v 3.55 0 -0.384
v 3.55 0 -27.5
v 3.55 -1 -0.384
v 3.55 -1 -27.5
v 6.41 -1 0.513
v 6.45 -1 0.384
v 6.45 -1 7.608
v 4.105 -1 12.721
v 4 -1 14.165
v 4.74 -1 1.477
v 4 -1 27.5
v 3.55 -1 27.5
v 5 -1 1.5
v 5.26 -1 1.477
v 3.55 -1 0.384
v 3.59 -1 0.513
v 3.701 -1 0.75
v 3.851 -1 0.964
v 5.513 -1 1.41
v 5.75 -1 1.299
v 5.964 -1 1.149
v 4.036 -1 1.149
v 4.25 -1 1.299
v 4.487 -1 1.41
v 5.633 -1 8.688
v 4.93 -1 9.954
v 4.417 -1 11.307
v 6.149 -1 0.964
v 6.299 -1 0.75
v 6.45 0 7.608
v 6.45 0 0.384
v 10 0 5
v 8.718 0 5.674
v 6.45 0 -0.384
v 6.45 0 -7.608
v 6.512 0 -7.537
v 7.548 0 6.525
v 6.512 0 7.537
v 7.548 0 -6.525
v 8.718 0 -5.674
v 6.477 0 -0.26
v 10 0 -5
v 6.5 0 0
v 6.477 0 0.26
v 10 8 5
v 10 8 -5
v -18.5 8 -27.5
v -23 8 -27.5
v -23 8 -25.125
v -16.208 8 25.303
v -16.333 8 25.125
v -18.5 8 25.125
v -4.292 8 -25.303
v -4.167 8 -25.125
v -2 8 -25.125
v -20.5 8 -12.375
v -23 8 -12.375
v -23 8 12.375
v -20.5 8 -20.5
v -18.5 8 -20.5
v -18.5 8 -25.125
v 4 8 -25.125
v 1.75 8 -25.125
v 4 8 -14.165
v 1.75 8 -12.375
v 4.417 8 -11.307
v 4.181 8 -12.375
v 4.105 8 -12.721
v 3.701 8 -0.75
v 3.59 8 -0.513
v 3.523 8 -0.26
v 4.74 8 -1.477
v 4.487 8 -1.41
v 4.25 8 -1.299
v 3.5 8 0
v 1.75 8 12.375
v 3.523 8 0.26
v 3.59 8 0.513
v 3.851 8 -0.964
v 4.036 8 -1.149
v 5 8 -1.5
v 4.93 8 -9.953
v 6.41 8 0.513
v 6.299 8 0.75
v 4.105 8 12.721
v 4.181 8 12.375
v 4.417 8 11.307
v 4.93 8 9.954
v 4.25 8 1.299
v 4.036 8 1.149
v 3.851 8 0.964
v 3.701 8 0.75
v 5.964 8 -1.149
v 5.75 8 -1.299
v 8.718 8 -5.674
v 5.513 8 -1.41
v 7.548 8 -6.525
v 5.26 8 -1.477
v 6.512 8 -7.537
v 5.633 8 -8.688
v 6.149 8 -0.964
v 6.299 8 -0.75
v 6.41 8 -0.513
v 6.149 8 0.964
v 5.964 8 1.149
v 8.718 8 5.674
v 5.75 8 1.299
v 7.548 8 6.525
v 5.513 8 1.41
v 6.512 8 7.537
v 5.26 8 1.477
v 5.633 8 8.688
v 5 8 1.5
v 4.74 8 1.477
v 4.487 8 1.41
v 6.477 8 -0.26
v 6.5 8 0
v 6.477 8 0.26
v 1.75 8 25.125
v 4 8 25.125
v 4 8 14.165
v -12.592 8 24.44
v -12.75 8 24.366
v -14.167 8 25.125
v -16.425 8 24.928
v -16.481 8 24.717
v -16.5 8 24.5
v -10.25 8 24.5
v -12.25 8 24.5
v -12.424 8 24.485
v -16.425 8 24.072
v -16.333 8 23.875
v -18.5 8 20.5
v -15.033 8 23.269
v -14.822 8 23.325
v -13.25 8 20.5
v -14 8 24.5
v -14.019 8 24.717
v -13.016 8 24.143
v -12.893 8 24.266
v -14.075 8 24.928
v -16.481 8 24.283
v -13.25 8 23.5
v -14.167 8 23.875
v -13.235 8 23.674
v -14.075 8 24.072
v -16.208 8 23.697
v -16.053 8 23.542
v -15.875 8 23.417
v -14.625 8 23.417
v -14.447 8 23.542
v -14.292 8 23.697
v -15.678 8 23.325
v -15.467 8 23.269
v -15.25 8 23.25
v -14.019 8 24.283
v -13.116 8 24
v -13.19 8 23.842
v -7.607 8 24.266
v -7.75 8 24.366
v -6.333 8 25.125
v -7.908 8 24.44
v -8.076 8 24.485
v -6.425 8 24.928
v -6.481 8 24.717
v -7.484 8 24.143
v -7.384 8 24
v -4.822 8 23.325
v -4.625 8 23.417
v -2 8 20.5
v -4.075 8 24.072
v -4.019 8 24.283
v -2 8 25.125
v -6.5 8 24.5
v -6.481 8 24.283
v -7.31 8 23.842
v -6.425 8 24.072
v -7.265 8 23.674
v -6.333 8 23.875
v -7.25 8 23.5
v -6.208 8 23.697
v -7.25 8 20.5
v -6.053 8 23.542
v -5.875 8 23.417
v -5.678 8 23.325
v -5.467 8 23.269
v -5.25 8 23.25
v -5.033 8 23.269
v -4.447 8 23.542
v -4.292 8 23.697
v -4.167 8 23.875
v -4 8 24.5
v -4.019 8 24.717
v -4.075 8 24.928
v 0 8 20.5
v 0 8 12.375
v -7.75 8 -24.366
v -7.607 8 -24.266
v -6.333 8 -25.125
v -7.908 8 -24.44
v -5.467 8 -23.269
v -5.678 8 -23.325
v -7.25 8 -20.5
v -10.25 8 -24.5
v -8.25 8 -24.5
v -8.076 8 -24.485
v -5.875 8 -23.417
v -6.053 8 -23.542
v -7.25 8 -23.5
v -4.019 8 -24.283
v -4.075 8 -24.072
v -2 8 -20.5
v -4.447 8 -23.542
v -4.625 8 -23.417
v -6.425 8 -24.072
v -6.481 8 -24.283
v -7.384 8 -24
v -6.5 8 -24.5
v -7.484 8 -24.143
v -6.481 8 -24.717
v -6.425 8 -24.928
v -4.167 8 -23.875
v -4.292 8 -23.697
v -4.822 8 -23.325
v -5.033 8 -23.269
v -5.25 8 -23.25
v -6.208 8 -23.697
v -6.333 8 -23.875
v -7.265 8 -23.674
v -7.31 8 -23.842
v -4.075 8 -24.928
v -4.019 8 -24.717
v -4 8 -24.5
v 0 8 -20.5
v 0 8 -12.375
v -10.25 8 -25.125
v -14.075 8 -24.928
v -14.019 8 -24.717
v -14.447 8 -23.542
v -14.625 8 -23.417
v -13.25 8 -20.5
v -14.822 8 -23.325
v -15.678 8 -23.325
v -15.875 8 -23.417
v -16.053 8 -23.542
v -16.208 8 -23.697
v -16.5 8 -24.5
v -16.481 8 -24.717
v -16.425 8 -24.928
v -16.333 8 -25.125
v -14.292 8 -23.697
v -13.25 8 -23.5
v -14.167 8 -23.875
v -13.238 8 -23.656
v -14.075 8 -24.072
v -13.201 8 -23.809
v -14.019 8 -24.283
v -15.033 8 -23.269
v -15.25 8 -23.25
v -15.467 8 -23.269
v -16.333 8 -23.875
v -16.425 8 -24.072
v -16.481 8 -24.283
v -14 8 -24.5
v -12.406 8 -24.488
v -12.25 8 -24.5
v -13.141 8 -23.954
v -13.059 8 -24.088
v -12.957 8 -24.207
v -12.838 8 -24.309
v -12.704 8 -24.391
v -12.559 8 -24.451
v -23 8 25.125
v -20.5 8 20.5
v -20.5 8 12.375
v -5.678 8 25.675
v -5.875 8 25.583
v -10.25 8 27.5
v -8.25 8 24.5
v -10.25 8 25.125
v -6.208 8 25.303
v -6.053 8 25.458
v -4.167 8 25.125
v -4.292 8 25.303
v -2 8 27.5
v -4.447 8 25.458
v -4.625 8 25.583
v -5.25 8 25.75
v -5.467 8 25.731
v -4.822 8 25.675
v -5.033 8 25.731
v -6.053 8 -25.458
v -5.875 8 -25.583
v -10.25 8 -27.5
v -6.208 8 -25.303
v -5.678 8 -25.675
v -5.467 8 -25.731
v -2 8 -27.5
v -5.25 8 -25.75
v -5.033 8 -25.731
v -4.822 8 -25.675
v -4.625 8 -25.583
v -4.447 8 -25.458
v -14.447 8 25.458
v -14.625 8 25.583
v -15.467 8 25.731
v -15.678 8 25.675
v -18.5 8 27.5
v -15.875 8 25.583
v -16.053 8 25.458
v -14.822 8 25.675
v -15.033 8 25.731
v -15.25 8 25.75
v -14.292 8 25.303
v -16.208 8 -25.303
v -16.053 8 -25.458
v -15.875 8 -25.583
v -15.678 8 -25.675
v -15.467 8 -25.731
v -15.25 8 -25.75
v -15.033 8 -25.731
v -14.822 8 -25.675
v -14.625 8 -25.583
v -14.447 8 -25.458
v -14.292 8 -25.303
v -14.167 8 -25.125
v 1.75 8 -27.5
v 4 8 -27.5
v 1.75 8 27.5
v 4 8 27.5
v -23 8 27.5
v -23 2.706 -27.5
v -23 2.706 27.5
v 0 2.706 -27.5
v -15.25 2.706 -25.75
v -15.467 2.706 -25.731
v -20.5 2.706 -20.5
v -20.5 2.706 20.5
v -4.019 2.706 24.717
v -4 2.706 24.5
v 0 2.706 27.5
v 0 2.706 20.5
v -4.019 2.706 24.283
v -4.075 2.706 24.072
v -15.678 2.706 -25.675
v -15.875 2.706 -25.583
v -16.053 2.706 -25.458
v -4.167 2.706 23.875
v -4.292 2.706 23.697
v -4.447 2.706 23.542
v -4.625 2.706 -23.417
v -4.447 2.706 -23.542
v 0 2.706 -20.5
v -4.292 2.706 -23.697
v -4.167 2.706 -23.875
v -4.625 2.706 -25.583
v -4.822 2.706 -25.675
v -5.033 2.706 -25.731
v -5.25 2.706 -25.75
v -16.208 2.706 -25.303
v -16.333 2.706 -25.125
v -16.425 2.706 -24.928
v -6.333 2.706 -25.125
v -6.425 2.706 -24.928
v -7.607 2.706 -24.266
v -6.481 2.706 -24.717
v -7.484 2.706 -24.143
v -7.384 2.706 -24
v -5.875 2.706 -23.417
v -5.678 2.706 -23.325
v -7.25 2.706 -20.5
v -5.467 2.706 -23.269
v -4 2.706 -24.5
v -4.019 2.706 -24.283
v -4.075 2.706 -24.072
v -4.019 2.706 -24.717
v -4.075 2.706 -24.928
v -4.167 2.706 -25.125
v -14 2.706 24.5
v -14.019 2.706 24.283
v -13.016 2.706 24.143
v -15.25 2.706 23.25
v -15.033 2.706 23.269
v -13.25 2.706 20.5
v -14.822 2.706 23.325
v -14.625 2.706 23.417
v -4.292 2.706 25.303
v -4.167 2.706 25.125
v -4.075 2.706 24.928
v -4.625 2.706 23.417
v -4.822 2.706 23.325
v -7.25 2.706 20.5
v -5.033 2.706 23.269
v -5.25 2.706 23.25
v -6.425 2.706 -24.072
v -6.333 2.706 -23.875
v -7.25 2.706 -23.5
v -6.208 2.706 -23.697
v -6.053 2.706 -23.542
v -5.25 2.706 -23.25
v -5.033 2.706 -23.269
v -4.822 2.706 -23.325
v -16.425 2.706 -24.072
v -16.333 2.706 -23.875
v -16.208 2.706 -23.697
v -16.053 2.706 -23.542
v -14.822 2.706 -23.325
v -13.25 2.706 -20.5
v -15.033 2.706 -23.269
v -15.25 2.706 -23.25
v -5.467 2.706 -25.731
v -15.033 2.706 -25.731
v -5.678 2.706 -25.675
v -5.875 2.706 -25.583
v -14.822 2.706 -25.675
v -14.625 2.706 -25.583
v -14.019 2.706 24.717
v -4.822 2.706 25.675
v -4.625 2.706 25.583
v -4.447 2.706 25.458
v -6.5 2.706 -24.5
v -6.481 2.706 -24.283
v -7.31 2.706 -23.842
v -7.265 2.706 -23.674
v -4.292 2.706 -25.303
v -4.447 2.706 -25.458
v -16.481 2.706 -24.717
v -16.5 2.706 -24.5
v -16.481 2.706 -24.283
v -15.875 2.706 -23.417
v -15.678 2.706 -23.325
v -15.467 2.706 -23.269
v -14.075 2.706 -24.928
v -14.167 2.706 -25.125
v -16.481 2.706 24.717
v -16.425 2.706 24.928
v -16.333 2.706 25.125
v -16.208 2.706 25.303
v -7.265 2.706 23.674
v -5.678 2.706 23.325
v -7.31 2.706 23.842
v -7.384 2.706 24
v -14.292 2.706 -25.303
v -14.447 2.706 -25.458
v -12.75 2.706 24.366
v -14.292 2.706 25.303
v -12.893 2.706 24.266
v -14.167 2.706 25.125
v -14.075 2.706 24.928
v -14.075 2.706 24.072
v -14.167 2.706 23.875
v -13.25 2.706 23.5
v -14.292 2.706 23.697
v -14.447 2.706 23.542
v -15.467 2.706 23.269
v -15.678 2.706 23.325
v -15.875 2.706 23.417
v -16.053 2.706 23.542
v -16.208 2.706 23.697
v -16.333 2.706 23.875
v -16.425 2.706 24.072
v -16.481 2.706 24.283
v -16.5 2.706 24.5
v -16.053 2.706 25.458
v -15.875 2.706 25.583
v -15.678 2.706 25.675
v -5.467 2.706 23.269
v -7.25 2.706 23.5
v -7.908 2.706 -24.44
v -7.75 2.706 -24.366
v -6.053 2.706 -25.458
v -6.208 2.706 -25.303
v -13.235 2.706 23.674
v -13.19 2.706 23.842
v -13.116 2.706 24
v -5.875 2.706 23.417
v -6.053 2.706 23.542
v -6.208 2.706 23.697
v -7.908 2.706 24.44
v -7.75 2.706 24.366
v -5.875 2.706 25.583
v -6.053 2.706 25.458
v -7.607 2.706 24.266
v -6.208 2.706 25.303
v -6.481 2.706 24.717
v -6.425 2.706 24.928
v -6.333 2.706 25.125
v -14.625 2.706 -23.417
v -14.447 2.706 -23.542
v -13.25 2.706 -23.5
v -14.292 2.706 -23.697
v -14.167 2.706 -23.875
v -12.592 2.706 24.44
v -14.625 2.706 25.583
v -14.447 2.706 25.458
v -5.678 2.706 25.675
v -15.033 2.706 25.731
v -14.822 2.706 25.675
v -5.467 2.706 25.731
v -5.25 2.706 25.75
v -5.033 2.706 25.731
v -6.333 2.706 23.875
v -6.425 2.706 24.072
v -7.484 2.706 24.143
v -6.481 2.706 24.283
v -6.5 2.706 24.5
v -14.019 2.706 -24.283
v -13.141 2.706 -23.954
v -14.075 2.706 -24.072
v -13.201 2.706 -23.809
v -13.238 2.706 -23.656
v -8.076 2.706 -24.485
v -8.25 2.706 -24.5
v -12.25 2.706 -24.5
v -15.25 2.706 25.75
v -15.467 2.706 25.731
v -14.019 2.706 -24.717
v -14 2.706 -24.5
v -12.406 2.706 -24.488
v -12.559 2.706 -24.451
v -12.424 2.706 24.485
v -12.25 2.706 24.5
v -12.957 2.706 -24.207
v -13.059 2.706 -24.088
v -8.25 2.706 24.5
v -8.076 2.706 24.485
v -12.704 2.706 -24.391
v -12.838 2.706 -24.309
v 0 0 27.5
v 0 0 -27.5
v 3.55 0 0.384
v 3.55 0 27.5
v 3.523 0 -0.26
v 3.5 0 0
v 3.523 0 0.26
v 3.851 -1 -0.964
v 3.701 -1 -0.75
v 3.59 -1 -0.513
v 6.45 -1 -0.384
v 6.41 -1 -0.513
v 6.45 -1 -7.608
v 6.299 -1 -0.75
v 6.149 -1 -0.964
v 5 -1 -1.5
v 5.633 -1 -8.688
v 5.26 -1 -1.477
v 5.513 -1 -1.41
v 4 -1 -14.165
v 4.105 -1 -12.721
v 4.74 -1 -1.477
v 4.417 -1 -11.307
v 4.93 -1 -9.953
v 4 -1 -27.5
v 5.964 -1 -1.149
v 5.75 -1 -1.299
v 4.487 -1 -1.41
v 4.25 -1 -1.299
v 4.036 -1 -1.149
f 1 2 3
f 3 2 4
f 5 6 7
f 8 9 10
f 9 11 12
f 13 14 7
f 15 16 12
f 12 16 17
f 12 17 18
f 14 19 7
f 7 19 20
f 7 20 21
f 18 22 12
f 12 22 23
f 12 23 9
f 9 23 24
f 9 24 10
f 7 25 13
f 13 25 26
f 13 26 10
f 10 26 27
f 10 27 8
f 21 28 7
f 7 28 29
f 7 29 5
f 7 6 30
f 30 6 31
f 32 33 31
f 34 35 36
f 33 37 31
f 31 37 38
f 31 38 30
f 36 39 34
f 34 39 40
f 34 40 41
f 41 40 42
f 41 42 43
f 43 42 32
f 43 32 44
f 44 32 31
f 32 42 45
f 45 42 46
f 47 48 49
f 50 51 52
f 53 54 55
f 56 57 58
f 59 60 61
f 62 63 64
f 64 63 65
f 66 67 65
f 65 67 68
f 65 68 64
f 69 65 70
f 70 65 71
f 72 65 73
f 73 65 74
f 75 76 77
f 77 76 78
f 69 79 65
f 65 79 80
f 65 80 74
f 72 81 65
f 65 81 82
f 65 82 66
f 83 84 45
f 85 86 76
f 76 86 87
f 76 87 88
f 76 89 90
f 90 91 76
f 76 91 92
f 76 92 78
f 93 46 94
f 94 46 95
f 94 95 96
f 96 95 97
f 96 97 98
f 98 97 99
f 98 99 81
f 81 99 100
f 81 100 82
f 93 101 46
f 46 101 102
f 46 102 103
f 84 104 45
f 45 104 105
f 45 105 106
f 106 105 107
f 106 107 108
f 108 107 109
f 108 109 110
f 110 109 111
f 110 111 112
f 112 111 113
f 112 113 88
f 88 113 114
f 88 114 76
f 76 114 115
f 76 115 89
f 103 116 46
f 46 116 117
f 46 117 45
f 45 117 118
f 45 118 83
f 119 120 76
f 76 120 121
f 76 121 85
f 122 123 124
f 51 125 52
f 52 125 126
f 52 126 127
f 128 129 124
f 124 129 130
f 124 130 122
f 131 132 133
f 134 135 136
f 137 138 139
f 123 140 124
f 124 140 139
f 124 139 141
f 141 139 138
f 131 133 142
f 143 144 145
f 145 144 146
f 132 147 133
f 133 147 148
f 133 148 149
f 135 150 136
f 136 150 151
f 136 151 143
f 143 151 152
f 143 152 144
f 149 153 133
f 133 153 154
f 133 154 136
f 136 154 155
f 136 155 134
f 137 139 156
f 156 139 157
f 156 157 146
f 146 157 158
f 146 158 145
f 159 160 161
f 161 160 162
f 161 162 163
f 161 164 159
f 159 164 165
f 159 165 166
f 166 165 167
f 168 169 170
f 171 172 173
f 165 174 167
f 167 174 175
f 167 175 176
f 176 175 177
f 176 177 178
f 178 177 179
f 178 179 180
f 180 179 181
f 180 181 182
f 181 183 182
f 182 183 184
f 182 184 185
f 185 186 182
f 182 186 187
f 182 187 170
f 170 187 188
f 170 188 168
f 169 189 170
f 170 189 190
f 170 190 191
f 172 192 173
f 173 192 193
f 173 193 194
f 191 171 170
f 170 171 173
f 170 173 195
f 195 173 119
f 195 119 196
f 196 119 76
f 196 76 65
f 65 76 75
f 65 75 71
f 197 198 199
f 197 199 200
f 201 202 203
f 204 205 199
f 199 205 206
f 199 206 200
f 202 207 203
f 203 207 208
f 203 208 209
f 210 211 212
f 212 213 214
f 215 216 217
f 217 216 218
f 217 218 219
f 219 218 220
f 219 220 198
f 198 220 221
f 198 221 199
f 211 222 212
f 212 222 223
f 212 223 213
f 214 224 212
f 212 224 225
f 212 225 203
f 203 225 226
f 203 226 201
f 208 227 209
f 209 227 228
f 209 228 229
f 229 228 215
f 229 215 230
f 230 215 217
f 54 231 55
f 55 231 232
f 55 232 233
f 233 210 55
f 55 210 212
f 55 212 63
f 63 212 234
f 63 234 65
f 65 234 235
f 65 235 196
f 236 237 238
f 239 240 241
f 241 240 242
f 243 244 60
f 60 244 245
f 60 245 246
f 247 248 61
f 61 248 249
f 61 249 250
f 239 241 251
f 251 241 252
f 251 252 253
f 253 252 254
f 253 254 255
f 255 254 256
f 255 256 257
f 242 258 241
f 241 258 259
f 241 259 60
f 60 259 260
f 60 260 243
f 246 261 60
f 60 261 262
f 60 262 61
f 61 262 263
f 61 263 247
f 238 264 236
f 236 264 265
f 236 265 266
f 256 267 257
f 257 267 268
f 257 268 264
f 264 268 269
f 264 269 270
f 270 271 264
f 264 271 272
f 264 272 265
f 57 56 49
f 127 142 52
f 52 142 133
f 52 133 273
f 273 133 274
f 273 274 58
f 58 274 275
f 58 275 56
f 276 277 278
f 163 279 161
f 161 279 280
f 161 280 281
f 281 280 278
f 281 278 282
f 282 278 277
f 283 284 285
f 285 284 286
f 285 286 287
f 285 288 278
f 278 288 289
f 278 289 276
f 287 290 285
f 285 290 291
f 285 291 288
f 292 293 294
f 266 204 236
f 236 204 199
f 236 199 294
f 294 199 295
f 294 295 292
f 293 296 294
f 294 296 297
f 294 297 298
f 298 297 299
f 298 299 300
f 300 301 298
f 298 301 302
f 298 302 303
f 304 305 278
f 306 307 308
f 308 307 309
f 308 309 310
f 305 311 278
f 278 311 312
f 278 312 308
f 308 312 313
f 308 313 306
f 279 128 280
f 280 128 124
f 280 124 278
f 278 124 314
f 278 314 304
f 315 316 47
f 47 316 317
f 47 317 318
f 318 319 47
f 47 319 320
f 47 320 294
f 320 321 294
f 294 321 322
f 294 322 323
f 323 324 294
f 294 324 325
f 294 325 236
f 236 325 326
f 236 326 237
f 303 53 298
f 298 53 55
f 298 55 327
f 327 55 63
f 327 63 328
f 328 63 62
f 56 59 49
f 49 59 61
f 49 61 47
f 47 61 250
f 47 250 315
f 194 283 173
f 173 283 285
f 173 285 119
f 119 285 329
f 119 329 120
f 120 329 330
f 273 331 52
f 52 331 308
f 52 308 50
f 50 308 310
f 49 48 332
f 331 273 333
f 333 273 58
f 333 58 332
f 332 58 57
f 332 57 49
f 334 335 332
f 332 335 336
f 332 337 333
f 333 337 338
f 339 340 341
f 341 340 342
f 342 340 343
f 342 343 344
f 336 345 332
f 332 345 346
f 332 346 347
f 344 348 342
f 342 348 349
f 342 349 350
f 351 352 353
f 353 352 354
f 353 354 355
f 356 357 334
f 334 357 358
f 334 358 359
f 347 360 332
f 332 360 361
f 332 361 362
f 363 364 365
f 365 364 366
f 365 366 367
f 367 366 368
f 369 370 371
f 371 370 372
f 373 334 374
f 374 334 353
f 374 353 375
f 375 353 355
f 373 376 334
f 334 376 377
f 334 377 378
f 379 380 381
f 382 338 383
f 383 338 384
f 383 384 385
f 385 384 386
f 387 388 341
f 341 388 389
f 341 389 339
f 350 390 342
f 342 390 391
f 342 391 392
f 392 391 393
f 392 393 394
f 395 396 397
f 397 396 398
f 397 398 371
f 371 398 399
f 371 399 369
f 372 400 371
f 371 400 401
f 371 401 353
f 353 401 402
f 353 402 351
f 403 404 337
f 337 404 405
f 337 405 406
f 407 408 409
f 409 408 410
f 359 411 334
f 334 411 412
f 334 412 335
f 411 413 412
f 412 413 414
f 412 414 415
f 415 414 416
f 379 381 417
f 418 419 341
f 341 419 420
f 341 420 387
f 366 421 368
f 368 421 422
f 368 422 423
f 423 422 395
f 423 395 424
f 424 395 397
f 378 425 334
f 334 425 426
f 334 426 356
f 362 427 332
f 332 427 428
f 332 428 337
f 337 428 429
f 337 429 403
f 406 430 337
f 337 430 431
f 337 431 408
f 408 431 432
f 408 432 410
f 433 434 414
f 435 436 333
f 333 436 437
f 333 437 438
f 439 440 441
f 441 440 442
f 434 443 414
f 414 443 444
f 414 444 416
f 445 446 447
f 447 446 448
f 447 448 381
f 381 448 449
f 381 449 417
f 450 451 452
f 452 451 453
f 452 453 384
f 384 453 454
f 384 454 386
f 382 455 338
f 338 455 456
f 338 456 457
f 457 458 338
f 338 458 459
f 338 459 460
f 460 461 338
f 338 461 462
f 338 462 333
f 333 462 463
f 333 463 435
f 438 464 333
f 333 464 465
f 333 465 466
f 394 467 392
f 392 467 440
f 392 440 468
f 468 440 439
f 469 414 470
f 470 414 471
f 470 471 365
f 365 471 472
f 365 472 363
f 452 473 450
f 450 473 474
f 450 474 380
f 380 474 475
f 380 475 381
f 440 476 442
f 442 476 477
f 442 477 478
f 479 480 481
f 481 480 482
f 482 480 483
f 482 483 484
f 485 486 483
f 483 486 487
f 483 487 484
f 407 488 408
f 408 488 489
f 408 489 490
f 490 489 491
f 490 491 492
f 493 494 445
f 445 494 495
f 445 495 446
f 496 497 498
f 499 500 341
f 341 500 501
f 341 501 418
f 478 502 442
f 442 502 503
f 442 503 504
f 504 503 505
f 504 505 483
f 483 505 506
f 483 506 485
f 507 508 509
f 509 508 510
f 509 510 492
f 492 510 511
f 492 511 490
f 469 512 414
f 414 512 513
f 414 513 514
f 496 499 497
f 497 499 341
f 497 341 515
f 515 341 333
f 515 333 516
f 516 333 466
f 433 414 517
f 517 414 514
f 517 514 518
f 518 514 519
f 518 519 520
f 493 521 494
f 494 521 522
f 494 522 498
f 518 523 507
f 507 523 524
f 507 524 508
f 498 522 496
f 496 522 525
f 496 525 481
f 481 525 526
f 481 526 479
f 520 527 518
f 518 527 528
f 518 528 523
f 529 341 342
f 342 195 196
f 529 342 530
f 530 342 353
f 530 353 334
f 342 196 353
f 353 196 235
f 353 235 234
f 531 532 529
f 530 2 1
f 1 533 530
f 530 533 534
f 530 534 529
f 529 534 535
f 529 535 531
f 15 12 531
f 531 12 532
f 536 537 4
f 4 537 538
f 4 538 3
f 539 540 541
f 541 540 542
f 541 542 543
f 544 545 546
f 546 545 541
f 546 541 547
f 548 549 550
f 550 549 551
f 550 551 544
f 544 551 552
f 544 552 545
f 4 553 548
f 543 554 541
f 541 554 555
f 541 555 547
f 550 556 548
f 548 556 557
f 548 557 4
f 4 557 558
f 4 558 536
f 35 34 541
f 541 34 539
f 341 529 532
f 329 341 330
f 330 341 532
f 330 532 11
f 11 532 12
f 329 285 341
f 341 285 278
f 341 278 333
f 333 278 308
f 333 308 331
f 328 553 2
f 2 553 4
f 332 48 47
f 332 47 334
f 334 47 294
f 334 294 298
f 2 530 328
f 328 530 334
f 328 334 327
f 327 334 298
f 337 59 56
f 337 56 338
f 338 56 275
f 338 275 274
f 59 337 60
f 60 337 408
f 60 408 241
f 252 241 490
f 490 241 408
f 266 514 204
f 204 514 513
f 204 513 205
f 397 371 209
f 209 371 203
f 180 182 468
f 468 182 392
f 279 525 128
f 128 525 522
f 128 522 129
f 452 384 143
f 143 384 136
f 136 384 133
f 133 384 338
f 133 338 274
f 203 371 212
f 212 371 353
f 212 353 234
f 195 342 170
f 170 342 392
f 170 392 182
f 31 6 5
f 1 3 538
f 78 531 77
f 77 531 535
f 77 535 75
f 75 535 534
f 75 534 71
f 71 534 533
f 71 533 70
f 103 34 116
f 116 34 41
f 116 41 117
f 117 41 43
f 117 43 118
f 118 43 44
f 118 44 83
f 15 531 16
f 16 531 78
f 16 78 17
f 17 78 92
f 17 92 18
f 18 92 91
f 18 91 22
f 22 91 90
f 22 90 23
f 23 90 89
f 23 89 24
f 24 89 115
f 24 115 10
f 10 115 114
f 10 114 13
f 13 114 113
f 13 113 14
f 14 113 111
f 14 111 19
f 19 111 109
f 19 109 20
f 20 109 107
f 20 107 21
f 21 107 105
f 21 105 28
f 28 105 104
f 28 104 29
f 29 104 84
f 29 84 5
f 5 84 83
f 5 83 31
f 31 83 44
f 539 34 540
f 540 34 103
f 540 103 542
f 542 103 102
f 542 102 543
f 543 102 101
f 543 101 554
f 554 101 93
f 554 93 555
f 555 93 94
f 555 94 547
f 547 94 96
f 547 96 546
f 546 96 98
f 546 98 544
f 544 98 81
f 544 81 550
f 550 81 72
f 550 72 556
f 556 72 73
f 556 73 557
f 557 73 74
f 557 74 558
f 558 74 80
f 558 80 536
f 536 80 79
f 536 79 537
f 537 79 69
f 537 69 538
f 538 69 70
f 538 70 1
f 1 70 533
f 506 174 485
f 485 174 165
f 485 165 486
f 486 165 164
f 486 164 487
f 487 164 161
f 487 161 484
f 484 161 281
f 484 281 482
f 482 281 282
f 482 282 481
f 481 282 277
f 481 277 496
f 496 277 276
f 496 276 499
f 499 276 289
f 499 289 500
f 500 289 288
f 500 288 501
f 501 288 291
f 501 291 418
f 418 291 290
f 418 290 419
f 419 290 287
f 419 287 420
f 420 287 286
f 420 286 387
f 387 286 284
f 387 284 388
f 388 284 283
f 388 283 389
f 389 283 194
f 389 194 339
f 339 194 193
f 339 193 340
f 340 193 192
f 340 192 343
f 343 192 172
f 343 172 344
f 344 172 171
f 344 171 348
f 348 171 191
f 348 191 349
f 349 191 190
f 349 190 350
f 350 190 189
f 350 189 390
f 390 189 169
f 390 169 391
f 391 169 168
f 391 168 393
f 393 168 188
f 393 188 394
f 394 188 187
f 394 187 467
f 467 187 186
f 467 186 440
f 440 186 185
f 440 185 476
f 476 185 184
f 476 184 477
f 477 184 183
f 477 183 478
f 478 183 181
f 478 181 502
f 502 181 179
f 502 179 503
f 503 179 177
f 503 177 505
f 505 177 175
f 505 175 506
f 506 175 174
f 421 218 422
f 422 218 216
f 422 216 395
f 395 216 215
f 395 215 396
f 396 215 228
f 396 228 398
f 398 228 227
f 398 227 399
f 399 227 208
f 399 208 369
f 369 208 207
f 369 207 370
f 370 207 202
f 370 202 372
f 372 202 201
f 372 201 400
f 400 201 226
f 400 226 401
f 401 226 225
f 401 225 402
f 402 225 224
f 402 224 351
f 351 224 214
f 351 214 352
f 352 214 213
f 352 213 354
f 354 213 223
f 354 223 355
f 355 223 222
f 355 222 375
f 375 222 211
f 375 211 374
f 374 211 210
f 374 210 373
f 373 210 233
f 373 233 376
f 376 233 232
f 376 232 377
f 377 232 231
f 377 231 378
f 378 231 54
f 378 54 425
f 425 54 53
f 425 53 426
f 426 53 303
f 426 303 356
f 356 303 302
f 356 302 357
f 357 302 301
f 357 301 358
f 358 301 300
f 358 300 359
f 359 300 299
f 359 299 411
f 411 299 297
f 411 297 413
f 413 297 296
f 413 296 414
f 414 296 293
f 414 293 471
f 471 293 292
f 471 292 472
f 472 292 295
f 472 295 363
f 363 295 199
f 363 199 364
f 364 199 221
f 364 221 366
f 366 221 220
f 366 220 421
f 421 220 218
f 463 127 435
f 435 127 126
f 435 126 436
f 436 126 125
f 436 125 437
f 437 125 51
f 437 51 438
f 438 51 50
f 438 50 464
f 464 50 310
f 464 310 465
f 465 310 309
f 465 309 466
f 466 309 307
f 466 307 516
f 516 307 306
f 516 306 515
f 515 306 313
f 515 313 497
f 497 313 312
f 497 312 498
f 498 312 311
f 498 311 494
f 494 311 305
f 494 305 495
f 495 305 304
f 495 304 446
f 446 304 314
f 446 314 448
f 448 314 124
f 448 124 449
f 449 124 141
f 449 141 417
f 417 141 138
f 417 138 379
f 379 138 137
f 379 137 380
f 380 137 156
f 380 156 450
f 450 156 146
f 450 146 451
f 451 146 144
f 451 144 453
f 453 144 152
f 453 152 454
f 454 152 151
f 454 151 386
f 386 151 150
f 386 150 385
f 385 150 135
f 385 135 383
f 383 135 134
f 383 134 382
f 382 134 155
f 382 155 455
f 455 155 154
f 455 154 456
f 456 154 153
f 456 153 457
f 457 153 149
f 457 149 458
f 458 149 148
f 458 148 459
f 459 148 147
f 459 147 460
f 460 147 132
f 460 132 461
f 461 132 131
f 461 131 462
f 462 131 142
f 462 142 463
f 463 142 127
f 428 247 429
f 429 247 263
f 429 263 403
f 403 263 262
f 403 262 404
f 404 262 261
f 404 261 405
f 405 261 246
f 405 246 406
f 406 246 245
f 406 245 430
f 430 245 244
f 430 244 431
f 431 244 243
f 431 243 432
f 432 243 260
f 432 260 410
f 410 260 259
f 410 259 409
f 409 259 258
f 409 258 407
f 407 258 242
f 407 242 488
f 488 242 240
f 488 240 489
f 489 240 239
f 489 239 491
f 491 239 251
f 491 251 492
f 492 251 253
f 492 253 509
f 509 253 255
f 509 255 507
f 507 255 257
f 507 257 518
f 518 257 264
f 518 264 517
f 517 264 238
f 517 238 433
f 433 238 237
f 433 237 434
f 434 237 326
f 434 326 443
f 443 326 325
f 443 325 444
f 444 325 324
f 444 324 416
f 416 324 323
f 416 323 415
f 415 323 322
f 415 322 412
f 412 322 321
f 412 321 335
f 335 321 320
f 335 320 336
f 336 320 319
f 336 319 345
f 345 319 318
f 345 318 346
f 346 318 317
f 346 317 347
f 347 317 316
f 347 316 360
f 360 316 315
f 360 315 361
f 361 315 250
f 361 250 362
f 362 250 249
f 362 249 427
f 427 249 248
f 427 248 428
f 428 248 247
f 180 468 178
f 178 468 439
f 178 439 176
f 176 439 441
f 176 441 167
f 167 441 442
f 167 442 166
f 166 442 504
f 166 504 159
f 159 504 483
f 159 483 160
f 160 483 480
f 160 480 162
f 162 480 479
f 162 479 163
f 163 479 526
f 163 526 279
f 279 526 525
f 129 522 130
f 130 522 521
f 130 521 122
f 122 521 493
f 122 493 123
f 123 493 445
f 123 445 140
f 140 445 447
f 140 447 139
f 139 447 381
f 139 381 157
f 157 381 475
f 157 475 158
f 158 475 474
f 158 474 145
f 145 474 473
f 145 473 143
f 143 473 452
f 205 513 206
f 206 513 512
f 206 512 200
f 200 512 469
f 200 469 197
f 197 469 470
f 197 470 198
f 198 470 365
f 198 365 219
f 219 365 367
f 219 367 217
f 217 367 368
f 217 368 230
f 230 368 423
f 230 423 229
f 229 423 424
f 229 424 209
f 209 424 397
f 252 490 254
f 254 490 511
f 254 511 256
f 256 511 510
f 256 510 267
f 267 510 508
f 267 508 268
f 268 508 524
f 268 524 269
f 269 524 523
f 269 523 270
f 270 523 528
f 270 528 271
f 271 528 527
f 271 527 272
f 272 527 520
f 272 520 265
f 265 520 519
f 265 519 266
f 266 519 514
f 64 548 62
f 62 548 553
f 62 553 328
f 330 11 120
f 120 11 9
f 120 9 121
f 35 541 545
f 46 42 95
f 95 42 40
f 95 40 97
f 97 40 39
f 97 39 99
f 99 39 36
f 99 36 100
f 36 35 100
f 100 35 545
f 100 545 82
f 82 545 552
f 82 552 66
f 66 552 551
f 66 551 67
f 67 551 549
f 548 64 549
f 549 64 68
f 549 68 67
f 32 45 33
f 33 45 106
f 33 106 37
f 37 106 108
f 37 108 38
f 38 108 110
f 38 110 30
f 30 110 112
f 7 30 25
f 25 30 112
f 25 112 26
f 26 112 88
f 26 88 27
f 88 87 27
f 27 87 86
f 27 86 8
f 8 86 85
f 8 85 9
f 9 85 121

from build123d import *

# Parameters (mm, degrees)
MAIN_DEPTH            = 27.5
SERVOSQUAREHOLE_DEPTH = 37.962819157
SKETCH2_R             = 1.5
SKETCH2_R_2           = 1.25
FIXINGHOLE_DEPTH      = 37.962819157
FILLET1_R             = 1
SKETCH4_W             = 6
SKETCH4_H             = 22.5
CUT_EXTRUDE2_DEPTH    = 37.962819157
FILLET2_R             = 10


with BuildPart() as part:
    # Sketch1 → Main (new, symmetric)
    with BuildSketch(Plane.XY):
        Polygon((10, 0), (10, 8), (-23, 8), (-23, 2.706273437), (0, 2.706273437), (0, 0), (3.55, 0), (3.55, -1), (6.45, -1), (6.45, 0), align=None)
    extrude(amount=MAIN_DEPTH, both=True)

    # Sketch3 → ServoSquareHole (cut, through all)
    with BuildSketch(Plane(origin=(0, 8, 0), x_dir=(1, 0, 0), z_dir=(0, 1, 0))):
        Polygon((-20.5, 20.5), (-13.25, 20.5), (-13.25, 24.5), (-7.25, 24.5), (-7.25, 20.5), (0, 20.5), (0, -20.5), (-7.25, -20.5), (-7.25, -24.5), (-13.25, -24.5), (-13.25, -20.5), (-20.5, -20.5), align=None)
    extrude(amount=-SERVOSQUAREHOLE_DEPTH, mode=Mode.SUBTRACT)

    # Sketch2 → FixingHole (cut, through all)
    with BuildSketch(Plane(origin=(0, 8, 0), x_dir=(1, 0, 0), z_dir=(0, 1, 0))):
        with Locations(Location((5, 0, 0), (0, 0, 180))):
            Circle(SKETCH2_R)
        with Locations(Location((-15.25, 24.5, 0), (0, 0, 180))):
            Circle(SKETCH2_R_2)
        with Locations(Location((-15.25, -24.5, 0), (0, 0, 180))):
            Circle(SKETCH2_R_2)
        with Locations(Location((-5.25, 24.5, 0), (0, 0, 180))):
            Circle(SKETCH2_R_2)
        with Locations(Location((-5.25, -24.5, 0), (0, 0, 180))):
            Circle(SKETCH2_R_2)
    extrude(amount=-FIXINGHOLE_DEPTH, mode=Mode.SUBTRACT)

    # Fillet1
    fillet1_edges = [part.edges().sort_by_distance(p)[0] for p in [
        (-13.25, 5.353136719, -24.5),
        (-7.25, 5.353136719, -24.5),
        (-7.25, 5.353136719, 24.5),
        (-13.25, 5.353136719, 24.5),
    ]]
    fillet(fillet1_edges, radius=FILLET1_R)

    # Sketch4 → Cut-Extrude2 (cut, through all)
    with BuildSketch(Plane(origin=(0, 8, 0), x_dir=(1, 0, 0), z_dir=(0, 1, 0))):
        with Locations((7, 16.25)):
            Rectangle(SKETCH4_W, SKETCH4_H)
        with Locations((7, -16.25)):
            Rectangle(SKETCH4_W, SKETCH4_H)
    extrude(amount=-CUT_EXTRUDE2_DEPTH, mode=Mode.SUBTRACT)

    # Fillet2
    # the kernel refuses this fillet: 10 mm, written as the material it adds along each edge
    with BuildSketch(Plane(origin=(4, 8, 5), x_dir=(1, 0, 0), z_dir=(0, -1, 0))) as fillet2_piece_1_section:
        with BuildLine():
            CenterArc((10, 9.16515139), FILLET2_R, 180, 66.421821522)
            Line((0, 9.16515139), (-0.2, 9.16515139))
            Line((-0.2, 9.16515139), (-0.2, 0))
            Line((-0.2, 0), (0, -0.2))
            ThreePointArc((0, -0.2), (3, -0.2), (5.92, -0.183303028))
            Line((5.92, -0.183303028), (6, 0))
        make_face()
    fillet2_piece_1 = extrude(amount=9, mode=Mode.PRIVATE)
    fillet2_piece_1 = split(fillet2_piece_1, bisect_by=Plane(origin=(7.630084013, 0, 5.669805071), z_dir=(0, 1, 0)), keep=Keep.TOP, mode=Mode.PRIVATE)
    fillet2_piece_1 = split(fillet2_piece_1, bisect_by=Plane(origin=(6.45, 4, 5.669805071), z_dir=(1, 0, 0)), keep=Keep.TOP, mode=Mode.PRIVATE)
    add(fillet2_piece_1)
    with BuildSketch(Plane(origin=(4, 8, 5), x_dir=(1, 0, 0), z_dir=(0, -1, 0))) as fillet2_piece_2_section:
        with BuildLine():
            CenterArc((10, 9.16515139), FILLET2_R, 180, 66.421821522)
            Line((0, 9.16515139), (-0.2, 9.16515139))
            Line((-0.2, 9.16515139), (-0.2, 0))
            Line((-0.2, 0), (0, -0.2))
            ThreePointArc((0, -0.2), (3, -0.2), (5.92, -0.183303028))
            Line((5.92, -0.183303028), (6, 0))
        make_face()
    fillet2_piece_2 = extrude(amount=9, mode=Mode.PRIVATE)
    fillet2_piece_2 = split(fillet2_piece_2, bisect_by=Plane(origin=(4.860609572, 0, 7.751217471), z_dir=(0, 1, 0)), keep=Keep.TOP, mode=Mode.PRIVATE)
    fillet2_piece_2 = split(fillet2_piece_2, bisect_by=Plane(origin=(6.45, 4, 7.751217471), z_dir=(-1, 0, 0)), keep=Keep.TOP, mode=Mode.PRIVATE)
    add(fillet2_piece_2)
    with BuildSketch(Plane(origin=(4, 8, 5), x_dir=(1, 0, 0), z_dir=(0, -1, 0))) as fillet2_piece_3_section:
        with BuildLine():
            CenterArc((10, 9.16515139), FILLET2_R, 180, 66.421821522)
            Line((0, 9.16515139), (-0.2, 9.16515139))
            Line((-0.2, 9.16515139), (-0.2, 0))
            Line((-0.2, 0), (0, -0.2))
            ThreePointArc((0, -0.2), (3, -0.2), (5.92, -0.183303028))
            Line((5.92, -0.183303028), (6, 0))
        make_face()
    fillet2_piece_3 = extrude(amount=9, mode=Mode.PRIVATE)
    fillet2_piece_3 = split(fillet2_piece_3, bisect_by=Plane(origin=(4.860609572, 0, 7.751217471), z_dir=(0, -1, 0)), keep=Keep.TOP, mode=Mode.PRIVATE)
    fillet2_piece_3 = split(fillet2_piece_3, bisect_by=Plane(origin=(6.45, -0.5, 7.751217471), z_dir=(-1, 0, 0)), keep=Keep.TOP, mode=Mode.PRIVATE)
    add(fillet2_piece_3)
    with BuildSketch(Plane(origin=(4, 8, -5), x_dir=(0, 0, -1), z_dir=(0, -1, 0))) as fillet2_piece_4_section:
        with BuildLine():
            CenterArc((9.16515139, 10), FILLET2_R, 203.578178478, 66.421821522)
            Line((0, 6), (-0.183303028, 5.92))
            ThreePointArc((-0.183303028, 5.92), (-0.2, 3), (-0.2, 0))
            Line((-0.2, 0), (0, -0.2))
            Line((0, -0.2), (9.16515139, -0.2))
            Line((9.16515139, -0.2), (9.16515139, 0))
        make_face()
    fillet2_piece_4 = extrude(amount=9, mode=Mode.PRIVATE)
    fillet2_piece_4 = split(fillet2_piece_4, bisect_by=Plane(origin=(6.45, 4, -7.751217471), z_dir=(-1, 0, 0)), keep=Keep.TOP, mode=Mode.PRIVATE)
    fillet2_piece_4 = split(fillet2_piece_4, bisect_by=Plane(origin=(4.860609572, 0, -7.751217471), z_dir=(0, 1, 0)), keep=Keep.TOP, mode=Mode.PRIVATE)
    add(fillet2_piece_4)
    with BuildSketch(Plane(origin=(4, 8, -5), x_dir=(0, 0, -1), z_dir=(0, -1, 0))) as fillet2_piece_5_section:
        with BuildLine():
            CenterArc((9.16515139, 10), FILLET2_R, 203.578178478, 66.421821522)
            Line((0, 6), (-0.183303028, 5.92))
            ThreePointArc((-0.183303028, 5.92), (-0.2, 3), (-0.2, 0))
            Line((-0.2, 0), (0, -0.2))
            Line((0, -0.2), (9.16515139, -0.2))
            Line((9.16515139, -0.2), (9.16515139, 0))
        make_face()
    fillet2_piece_5 = extrude(amount=9, mode=Mode.PRIVATE)
    fillet2_piece_5 = split(fillet2_piece_5, bisect_by=Plane(origin=(6.45, 4, -5.669805071), z_dir=(1, 0, 0)), keep=Keep.TOP, mode=Mode.PRIVATE)
    fillet2_piece_5 = split(fillet2_piece_5, bisect_by=Plane(origin=(7.630084013, 0, -5.669805071), z_dir=(0, 1, 0)), keep=Keep.TOP, mode=Mode.PRIVATE)
    add(fillet2_piece_5)
    with BuildSketch(Plane(origin=(4, 8, -5), x_dir=(0, 0, -1), z_dir=(0, -1, 0))) as fillet2_piece_6_section:
        with BuildLine():
            CenterArc((9.16515139, 10), FILLET2_R, 203.578178478, 66.421821522)
            Line((0, 6), (-0.183303028, 5.92))
            ThreePointArc((-0.183303028, 5.92), (-0.2, 3), (-0.2, 0))
            Line((-0.2, 0), (0, -0.2))
            Line((0, -0.2), (9.16515139, -0.2))
            Line((9.16515139, -0.2), (9.16515139, 0))
        make_face()
    fillet2_piece_6 = extrude(amount=9, mode=Mode.PRIVATE)
    fillet2_piece_6 = split(fillet2_piece_6, bisect_by=Plane(origin=(6.45, -0.5, -7.751217471), z_dir=(-1, 0, 0)), keep=Keep.TOP, mode=Mode.PRIVATE)
    fillet2_piece_6 = split(fillet2_piece_6, bisect_by=Plane(origin=(4.860609572, 0, -7.751217471), z_dir=(0, -1, 0)), keep=Keep.TOP, mode=Mode.PRIVATE)
    add(fillet2_piece_6)


solid = part.part
